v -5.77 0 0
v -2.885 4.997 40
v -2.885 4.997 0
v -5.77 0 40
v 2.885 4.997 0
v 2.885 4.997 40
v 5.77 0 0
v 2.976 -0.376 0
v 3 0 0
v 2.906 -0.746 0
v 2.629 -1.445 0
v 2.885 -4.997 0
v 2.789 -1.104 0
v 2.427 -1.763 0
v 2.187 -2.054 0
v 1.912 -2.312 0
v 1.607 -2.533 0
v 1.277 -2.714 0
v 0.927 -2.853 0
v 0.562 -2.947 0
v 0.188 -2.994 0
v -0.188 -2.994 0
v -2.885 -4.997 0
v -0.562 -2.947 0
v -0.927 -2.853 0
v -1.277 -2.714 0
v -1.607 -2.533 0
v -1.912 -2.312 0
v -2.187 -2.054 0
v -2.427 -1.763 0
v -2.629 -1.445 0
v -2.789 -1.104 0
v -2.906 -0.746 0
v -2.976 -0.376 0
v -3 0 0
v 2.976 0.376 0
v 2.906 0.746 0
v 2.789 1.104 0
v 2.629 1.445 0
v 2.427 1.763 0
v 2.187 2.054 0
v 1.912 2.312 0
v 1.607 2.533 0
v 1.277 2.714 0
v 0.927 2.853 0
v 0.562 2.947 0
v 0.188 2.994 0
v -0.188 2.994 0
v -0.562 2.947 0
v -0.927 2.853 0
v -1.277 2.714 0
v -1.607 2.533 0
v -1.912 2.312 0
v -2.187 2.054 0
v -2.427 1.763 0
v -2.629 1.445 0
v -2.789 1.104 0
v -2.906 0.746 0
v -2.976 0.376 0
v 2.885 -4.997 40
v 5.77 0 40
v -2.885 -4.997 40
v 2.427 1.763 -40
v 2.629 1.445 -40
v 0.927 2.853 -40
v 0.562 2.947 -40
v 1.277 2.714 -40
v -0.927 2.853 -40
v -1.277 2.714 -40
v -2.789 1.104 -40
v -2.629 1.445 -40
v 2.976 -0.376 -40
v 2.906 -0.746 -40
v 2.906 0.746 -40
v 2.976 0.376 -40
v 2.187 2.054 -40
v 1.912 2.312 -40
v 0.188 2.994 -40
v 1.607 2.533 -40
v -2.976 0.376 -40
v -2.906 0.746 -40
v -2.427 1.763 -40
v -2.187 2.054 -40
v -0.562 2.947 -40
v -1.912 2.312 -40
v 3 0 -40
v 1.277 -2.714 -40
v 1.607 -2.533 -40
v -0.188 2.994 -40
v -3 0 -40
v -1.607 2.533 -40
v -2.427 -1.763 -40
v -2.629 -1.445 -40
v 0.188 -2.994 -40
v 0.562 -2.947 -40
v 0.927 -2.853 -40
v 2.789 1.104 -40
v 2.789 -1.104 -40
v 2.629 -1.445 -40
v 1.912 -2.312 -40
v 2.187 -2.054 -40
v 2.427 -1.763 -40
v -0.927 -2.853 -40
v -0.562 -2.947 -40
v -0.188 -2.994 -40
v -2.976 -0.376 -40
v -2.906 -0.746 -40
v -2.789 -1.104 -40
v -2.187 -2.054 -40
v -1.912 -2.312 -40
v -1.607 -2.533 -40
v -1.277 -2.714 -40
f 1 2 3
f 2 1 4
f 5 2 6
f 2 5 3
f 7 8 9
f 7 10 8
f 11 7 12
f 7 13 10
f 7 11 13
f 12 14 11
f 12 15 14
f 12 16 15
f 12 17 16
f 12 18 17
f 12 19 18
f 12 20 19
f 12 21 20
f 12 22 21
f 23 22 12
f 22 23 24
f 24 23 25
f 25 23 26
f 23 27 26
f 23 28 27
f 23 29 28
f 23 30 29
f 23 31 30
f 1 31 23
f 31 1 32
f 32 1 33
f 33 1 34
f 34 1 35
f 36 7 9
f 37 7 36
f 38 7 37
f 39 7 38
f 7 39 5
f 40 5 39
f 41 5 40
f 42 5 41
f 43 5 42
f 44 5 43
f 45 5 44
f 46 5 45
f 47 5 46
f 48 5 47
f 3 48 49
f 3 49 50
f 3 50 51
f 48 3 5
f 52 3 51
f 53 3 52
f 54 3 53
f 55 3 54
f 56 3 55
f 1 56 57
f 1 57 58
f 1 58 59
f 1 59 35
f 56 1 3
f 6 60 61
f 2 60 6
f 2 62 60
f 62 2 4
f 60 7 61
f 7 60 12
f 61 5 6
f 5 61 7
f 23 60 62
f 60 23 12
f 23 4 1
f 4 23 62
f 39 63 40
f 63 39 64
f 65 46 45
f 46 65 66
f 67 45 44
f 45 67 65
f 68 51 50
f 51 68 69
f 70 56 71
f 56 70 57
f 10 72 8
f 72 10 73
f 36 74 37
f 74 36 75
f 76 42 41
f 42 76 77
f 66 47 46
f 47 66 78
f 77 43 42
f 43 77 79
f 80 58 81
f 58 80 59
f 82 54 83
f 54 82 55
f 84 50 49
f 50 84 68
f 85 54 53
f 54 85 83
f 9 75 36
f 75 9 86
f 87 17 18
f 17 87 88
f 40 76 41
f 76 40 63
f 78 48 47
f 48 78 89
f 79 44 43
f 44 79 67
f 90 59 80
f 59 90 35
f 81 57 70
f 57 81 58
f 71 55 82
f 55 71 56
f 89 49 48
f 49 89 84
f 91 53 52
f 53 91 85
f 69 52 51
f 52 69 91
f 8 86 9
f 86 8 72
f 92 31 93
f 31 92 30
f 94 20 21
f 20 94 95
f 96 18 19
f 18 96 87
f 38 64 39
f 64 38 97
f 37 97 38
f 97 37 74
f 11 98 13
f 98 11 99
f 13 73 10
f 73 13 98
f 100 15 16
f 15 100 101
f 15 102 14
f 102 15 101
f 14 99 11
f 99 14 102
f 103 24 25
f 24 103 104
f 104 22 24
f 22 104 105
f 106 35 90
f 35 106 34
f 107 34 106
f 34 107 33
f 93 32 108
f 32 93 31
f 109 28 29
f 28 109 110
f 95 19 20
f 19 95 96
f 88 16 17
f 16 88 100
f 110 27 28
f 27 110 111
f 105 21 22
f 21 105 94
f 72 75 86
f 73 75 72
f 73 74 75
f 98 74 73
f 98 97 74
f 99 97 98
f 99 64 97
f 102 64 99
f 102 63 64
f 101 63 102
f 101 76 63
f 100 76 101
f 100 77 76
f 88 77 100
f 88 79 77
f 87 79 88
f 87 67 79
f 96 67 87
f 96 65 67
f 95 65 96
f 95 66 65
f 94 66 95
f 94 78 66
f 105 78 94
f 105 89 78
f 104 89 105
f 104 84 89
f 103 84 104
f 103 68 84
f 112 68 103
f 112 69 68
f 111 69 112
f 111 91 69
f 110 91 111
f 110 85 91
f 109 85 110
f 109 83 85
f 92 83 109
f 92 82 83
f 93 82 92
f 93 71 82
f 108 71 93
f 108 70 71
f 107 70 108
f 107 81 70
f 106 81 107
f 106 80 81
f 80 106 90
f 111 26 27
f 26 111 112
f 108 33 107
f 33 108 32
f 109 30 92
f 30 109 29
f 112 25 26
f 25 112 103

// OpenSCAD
$fn = 50;


difference() {
	union() {
		linear_extrude(height = 40) {
			polygon(points = [[5.7700000000, 0.0000000000], [2.8850000000, 4.9969665798], [-2.8850000000, 4.9969665798], [-5.7700000000, 0.0000000000], [-2.8850000000, -4.9969665798], [2.8850000000, -4.9969665798]]);
		}
		translate(v = [0, 0, -40]) {
			cylinder(h = 40, r = 3.0000000000);
		}
	}
	union();
}
